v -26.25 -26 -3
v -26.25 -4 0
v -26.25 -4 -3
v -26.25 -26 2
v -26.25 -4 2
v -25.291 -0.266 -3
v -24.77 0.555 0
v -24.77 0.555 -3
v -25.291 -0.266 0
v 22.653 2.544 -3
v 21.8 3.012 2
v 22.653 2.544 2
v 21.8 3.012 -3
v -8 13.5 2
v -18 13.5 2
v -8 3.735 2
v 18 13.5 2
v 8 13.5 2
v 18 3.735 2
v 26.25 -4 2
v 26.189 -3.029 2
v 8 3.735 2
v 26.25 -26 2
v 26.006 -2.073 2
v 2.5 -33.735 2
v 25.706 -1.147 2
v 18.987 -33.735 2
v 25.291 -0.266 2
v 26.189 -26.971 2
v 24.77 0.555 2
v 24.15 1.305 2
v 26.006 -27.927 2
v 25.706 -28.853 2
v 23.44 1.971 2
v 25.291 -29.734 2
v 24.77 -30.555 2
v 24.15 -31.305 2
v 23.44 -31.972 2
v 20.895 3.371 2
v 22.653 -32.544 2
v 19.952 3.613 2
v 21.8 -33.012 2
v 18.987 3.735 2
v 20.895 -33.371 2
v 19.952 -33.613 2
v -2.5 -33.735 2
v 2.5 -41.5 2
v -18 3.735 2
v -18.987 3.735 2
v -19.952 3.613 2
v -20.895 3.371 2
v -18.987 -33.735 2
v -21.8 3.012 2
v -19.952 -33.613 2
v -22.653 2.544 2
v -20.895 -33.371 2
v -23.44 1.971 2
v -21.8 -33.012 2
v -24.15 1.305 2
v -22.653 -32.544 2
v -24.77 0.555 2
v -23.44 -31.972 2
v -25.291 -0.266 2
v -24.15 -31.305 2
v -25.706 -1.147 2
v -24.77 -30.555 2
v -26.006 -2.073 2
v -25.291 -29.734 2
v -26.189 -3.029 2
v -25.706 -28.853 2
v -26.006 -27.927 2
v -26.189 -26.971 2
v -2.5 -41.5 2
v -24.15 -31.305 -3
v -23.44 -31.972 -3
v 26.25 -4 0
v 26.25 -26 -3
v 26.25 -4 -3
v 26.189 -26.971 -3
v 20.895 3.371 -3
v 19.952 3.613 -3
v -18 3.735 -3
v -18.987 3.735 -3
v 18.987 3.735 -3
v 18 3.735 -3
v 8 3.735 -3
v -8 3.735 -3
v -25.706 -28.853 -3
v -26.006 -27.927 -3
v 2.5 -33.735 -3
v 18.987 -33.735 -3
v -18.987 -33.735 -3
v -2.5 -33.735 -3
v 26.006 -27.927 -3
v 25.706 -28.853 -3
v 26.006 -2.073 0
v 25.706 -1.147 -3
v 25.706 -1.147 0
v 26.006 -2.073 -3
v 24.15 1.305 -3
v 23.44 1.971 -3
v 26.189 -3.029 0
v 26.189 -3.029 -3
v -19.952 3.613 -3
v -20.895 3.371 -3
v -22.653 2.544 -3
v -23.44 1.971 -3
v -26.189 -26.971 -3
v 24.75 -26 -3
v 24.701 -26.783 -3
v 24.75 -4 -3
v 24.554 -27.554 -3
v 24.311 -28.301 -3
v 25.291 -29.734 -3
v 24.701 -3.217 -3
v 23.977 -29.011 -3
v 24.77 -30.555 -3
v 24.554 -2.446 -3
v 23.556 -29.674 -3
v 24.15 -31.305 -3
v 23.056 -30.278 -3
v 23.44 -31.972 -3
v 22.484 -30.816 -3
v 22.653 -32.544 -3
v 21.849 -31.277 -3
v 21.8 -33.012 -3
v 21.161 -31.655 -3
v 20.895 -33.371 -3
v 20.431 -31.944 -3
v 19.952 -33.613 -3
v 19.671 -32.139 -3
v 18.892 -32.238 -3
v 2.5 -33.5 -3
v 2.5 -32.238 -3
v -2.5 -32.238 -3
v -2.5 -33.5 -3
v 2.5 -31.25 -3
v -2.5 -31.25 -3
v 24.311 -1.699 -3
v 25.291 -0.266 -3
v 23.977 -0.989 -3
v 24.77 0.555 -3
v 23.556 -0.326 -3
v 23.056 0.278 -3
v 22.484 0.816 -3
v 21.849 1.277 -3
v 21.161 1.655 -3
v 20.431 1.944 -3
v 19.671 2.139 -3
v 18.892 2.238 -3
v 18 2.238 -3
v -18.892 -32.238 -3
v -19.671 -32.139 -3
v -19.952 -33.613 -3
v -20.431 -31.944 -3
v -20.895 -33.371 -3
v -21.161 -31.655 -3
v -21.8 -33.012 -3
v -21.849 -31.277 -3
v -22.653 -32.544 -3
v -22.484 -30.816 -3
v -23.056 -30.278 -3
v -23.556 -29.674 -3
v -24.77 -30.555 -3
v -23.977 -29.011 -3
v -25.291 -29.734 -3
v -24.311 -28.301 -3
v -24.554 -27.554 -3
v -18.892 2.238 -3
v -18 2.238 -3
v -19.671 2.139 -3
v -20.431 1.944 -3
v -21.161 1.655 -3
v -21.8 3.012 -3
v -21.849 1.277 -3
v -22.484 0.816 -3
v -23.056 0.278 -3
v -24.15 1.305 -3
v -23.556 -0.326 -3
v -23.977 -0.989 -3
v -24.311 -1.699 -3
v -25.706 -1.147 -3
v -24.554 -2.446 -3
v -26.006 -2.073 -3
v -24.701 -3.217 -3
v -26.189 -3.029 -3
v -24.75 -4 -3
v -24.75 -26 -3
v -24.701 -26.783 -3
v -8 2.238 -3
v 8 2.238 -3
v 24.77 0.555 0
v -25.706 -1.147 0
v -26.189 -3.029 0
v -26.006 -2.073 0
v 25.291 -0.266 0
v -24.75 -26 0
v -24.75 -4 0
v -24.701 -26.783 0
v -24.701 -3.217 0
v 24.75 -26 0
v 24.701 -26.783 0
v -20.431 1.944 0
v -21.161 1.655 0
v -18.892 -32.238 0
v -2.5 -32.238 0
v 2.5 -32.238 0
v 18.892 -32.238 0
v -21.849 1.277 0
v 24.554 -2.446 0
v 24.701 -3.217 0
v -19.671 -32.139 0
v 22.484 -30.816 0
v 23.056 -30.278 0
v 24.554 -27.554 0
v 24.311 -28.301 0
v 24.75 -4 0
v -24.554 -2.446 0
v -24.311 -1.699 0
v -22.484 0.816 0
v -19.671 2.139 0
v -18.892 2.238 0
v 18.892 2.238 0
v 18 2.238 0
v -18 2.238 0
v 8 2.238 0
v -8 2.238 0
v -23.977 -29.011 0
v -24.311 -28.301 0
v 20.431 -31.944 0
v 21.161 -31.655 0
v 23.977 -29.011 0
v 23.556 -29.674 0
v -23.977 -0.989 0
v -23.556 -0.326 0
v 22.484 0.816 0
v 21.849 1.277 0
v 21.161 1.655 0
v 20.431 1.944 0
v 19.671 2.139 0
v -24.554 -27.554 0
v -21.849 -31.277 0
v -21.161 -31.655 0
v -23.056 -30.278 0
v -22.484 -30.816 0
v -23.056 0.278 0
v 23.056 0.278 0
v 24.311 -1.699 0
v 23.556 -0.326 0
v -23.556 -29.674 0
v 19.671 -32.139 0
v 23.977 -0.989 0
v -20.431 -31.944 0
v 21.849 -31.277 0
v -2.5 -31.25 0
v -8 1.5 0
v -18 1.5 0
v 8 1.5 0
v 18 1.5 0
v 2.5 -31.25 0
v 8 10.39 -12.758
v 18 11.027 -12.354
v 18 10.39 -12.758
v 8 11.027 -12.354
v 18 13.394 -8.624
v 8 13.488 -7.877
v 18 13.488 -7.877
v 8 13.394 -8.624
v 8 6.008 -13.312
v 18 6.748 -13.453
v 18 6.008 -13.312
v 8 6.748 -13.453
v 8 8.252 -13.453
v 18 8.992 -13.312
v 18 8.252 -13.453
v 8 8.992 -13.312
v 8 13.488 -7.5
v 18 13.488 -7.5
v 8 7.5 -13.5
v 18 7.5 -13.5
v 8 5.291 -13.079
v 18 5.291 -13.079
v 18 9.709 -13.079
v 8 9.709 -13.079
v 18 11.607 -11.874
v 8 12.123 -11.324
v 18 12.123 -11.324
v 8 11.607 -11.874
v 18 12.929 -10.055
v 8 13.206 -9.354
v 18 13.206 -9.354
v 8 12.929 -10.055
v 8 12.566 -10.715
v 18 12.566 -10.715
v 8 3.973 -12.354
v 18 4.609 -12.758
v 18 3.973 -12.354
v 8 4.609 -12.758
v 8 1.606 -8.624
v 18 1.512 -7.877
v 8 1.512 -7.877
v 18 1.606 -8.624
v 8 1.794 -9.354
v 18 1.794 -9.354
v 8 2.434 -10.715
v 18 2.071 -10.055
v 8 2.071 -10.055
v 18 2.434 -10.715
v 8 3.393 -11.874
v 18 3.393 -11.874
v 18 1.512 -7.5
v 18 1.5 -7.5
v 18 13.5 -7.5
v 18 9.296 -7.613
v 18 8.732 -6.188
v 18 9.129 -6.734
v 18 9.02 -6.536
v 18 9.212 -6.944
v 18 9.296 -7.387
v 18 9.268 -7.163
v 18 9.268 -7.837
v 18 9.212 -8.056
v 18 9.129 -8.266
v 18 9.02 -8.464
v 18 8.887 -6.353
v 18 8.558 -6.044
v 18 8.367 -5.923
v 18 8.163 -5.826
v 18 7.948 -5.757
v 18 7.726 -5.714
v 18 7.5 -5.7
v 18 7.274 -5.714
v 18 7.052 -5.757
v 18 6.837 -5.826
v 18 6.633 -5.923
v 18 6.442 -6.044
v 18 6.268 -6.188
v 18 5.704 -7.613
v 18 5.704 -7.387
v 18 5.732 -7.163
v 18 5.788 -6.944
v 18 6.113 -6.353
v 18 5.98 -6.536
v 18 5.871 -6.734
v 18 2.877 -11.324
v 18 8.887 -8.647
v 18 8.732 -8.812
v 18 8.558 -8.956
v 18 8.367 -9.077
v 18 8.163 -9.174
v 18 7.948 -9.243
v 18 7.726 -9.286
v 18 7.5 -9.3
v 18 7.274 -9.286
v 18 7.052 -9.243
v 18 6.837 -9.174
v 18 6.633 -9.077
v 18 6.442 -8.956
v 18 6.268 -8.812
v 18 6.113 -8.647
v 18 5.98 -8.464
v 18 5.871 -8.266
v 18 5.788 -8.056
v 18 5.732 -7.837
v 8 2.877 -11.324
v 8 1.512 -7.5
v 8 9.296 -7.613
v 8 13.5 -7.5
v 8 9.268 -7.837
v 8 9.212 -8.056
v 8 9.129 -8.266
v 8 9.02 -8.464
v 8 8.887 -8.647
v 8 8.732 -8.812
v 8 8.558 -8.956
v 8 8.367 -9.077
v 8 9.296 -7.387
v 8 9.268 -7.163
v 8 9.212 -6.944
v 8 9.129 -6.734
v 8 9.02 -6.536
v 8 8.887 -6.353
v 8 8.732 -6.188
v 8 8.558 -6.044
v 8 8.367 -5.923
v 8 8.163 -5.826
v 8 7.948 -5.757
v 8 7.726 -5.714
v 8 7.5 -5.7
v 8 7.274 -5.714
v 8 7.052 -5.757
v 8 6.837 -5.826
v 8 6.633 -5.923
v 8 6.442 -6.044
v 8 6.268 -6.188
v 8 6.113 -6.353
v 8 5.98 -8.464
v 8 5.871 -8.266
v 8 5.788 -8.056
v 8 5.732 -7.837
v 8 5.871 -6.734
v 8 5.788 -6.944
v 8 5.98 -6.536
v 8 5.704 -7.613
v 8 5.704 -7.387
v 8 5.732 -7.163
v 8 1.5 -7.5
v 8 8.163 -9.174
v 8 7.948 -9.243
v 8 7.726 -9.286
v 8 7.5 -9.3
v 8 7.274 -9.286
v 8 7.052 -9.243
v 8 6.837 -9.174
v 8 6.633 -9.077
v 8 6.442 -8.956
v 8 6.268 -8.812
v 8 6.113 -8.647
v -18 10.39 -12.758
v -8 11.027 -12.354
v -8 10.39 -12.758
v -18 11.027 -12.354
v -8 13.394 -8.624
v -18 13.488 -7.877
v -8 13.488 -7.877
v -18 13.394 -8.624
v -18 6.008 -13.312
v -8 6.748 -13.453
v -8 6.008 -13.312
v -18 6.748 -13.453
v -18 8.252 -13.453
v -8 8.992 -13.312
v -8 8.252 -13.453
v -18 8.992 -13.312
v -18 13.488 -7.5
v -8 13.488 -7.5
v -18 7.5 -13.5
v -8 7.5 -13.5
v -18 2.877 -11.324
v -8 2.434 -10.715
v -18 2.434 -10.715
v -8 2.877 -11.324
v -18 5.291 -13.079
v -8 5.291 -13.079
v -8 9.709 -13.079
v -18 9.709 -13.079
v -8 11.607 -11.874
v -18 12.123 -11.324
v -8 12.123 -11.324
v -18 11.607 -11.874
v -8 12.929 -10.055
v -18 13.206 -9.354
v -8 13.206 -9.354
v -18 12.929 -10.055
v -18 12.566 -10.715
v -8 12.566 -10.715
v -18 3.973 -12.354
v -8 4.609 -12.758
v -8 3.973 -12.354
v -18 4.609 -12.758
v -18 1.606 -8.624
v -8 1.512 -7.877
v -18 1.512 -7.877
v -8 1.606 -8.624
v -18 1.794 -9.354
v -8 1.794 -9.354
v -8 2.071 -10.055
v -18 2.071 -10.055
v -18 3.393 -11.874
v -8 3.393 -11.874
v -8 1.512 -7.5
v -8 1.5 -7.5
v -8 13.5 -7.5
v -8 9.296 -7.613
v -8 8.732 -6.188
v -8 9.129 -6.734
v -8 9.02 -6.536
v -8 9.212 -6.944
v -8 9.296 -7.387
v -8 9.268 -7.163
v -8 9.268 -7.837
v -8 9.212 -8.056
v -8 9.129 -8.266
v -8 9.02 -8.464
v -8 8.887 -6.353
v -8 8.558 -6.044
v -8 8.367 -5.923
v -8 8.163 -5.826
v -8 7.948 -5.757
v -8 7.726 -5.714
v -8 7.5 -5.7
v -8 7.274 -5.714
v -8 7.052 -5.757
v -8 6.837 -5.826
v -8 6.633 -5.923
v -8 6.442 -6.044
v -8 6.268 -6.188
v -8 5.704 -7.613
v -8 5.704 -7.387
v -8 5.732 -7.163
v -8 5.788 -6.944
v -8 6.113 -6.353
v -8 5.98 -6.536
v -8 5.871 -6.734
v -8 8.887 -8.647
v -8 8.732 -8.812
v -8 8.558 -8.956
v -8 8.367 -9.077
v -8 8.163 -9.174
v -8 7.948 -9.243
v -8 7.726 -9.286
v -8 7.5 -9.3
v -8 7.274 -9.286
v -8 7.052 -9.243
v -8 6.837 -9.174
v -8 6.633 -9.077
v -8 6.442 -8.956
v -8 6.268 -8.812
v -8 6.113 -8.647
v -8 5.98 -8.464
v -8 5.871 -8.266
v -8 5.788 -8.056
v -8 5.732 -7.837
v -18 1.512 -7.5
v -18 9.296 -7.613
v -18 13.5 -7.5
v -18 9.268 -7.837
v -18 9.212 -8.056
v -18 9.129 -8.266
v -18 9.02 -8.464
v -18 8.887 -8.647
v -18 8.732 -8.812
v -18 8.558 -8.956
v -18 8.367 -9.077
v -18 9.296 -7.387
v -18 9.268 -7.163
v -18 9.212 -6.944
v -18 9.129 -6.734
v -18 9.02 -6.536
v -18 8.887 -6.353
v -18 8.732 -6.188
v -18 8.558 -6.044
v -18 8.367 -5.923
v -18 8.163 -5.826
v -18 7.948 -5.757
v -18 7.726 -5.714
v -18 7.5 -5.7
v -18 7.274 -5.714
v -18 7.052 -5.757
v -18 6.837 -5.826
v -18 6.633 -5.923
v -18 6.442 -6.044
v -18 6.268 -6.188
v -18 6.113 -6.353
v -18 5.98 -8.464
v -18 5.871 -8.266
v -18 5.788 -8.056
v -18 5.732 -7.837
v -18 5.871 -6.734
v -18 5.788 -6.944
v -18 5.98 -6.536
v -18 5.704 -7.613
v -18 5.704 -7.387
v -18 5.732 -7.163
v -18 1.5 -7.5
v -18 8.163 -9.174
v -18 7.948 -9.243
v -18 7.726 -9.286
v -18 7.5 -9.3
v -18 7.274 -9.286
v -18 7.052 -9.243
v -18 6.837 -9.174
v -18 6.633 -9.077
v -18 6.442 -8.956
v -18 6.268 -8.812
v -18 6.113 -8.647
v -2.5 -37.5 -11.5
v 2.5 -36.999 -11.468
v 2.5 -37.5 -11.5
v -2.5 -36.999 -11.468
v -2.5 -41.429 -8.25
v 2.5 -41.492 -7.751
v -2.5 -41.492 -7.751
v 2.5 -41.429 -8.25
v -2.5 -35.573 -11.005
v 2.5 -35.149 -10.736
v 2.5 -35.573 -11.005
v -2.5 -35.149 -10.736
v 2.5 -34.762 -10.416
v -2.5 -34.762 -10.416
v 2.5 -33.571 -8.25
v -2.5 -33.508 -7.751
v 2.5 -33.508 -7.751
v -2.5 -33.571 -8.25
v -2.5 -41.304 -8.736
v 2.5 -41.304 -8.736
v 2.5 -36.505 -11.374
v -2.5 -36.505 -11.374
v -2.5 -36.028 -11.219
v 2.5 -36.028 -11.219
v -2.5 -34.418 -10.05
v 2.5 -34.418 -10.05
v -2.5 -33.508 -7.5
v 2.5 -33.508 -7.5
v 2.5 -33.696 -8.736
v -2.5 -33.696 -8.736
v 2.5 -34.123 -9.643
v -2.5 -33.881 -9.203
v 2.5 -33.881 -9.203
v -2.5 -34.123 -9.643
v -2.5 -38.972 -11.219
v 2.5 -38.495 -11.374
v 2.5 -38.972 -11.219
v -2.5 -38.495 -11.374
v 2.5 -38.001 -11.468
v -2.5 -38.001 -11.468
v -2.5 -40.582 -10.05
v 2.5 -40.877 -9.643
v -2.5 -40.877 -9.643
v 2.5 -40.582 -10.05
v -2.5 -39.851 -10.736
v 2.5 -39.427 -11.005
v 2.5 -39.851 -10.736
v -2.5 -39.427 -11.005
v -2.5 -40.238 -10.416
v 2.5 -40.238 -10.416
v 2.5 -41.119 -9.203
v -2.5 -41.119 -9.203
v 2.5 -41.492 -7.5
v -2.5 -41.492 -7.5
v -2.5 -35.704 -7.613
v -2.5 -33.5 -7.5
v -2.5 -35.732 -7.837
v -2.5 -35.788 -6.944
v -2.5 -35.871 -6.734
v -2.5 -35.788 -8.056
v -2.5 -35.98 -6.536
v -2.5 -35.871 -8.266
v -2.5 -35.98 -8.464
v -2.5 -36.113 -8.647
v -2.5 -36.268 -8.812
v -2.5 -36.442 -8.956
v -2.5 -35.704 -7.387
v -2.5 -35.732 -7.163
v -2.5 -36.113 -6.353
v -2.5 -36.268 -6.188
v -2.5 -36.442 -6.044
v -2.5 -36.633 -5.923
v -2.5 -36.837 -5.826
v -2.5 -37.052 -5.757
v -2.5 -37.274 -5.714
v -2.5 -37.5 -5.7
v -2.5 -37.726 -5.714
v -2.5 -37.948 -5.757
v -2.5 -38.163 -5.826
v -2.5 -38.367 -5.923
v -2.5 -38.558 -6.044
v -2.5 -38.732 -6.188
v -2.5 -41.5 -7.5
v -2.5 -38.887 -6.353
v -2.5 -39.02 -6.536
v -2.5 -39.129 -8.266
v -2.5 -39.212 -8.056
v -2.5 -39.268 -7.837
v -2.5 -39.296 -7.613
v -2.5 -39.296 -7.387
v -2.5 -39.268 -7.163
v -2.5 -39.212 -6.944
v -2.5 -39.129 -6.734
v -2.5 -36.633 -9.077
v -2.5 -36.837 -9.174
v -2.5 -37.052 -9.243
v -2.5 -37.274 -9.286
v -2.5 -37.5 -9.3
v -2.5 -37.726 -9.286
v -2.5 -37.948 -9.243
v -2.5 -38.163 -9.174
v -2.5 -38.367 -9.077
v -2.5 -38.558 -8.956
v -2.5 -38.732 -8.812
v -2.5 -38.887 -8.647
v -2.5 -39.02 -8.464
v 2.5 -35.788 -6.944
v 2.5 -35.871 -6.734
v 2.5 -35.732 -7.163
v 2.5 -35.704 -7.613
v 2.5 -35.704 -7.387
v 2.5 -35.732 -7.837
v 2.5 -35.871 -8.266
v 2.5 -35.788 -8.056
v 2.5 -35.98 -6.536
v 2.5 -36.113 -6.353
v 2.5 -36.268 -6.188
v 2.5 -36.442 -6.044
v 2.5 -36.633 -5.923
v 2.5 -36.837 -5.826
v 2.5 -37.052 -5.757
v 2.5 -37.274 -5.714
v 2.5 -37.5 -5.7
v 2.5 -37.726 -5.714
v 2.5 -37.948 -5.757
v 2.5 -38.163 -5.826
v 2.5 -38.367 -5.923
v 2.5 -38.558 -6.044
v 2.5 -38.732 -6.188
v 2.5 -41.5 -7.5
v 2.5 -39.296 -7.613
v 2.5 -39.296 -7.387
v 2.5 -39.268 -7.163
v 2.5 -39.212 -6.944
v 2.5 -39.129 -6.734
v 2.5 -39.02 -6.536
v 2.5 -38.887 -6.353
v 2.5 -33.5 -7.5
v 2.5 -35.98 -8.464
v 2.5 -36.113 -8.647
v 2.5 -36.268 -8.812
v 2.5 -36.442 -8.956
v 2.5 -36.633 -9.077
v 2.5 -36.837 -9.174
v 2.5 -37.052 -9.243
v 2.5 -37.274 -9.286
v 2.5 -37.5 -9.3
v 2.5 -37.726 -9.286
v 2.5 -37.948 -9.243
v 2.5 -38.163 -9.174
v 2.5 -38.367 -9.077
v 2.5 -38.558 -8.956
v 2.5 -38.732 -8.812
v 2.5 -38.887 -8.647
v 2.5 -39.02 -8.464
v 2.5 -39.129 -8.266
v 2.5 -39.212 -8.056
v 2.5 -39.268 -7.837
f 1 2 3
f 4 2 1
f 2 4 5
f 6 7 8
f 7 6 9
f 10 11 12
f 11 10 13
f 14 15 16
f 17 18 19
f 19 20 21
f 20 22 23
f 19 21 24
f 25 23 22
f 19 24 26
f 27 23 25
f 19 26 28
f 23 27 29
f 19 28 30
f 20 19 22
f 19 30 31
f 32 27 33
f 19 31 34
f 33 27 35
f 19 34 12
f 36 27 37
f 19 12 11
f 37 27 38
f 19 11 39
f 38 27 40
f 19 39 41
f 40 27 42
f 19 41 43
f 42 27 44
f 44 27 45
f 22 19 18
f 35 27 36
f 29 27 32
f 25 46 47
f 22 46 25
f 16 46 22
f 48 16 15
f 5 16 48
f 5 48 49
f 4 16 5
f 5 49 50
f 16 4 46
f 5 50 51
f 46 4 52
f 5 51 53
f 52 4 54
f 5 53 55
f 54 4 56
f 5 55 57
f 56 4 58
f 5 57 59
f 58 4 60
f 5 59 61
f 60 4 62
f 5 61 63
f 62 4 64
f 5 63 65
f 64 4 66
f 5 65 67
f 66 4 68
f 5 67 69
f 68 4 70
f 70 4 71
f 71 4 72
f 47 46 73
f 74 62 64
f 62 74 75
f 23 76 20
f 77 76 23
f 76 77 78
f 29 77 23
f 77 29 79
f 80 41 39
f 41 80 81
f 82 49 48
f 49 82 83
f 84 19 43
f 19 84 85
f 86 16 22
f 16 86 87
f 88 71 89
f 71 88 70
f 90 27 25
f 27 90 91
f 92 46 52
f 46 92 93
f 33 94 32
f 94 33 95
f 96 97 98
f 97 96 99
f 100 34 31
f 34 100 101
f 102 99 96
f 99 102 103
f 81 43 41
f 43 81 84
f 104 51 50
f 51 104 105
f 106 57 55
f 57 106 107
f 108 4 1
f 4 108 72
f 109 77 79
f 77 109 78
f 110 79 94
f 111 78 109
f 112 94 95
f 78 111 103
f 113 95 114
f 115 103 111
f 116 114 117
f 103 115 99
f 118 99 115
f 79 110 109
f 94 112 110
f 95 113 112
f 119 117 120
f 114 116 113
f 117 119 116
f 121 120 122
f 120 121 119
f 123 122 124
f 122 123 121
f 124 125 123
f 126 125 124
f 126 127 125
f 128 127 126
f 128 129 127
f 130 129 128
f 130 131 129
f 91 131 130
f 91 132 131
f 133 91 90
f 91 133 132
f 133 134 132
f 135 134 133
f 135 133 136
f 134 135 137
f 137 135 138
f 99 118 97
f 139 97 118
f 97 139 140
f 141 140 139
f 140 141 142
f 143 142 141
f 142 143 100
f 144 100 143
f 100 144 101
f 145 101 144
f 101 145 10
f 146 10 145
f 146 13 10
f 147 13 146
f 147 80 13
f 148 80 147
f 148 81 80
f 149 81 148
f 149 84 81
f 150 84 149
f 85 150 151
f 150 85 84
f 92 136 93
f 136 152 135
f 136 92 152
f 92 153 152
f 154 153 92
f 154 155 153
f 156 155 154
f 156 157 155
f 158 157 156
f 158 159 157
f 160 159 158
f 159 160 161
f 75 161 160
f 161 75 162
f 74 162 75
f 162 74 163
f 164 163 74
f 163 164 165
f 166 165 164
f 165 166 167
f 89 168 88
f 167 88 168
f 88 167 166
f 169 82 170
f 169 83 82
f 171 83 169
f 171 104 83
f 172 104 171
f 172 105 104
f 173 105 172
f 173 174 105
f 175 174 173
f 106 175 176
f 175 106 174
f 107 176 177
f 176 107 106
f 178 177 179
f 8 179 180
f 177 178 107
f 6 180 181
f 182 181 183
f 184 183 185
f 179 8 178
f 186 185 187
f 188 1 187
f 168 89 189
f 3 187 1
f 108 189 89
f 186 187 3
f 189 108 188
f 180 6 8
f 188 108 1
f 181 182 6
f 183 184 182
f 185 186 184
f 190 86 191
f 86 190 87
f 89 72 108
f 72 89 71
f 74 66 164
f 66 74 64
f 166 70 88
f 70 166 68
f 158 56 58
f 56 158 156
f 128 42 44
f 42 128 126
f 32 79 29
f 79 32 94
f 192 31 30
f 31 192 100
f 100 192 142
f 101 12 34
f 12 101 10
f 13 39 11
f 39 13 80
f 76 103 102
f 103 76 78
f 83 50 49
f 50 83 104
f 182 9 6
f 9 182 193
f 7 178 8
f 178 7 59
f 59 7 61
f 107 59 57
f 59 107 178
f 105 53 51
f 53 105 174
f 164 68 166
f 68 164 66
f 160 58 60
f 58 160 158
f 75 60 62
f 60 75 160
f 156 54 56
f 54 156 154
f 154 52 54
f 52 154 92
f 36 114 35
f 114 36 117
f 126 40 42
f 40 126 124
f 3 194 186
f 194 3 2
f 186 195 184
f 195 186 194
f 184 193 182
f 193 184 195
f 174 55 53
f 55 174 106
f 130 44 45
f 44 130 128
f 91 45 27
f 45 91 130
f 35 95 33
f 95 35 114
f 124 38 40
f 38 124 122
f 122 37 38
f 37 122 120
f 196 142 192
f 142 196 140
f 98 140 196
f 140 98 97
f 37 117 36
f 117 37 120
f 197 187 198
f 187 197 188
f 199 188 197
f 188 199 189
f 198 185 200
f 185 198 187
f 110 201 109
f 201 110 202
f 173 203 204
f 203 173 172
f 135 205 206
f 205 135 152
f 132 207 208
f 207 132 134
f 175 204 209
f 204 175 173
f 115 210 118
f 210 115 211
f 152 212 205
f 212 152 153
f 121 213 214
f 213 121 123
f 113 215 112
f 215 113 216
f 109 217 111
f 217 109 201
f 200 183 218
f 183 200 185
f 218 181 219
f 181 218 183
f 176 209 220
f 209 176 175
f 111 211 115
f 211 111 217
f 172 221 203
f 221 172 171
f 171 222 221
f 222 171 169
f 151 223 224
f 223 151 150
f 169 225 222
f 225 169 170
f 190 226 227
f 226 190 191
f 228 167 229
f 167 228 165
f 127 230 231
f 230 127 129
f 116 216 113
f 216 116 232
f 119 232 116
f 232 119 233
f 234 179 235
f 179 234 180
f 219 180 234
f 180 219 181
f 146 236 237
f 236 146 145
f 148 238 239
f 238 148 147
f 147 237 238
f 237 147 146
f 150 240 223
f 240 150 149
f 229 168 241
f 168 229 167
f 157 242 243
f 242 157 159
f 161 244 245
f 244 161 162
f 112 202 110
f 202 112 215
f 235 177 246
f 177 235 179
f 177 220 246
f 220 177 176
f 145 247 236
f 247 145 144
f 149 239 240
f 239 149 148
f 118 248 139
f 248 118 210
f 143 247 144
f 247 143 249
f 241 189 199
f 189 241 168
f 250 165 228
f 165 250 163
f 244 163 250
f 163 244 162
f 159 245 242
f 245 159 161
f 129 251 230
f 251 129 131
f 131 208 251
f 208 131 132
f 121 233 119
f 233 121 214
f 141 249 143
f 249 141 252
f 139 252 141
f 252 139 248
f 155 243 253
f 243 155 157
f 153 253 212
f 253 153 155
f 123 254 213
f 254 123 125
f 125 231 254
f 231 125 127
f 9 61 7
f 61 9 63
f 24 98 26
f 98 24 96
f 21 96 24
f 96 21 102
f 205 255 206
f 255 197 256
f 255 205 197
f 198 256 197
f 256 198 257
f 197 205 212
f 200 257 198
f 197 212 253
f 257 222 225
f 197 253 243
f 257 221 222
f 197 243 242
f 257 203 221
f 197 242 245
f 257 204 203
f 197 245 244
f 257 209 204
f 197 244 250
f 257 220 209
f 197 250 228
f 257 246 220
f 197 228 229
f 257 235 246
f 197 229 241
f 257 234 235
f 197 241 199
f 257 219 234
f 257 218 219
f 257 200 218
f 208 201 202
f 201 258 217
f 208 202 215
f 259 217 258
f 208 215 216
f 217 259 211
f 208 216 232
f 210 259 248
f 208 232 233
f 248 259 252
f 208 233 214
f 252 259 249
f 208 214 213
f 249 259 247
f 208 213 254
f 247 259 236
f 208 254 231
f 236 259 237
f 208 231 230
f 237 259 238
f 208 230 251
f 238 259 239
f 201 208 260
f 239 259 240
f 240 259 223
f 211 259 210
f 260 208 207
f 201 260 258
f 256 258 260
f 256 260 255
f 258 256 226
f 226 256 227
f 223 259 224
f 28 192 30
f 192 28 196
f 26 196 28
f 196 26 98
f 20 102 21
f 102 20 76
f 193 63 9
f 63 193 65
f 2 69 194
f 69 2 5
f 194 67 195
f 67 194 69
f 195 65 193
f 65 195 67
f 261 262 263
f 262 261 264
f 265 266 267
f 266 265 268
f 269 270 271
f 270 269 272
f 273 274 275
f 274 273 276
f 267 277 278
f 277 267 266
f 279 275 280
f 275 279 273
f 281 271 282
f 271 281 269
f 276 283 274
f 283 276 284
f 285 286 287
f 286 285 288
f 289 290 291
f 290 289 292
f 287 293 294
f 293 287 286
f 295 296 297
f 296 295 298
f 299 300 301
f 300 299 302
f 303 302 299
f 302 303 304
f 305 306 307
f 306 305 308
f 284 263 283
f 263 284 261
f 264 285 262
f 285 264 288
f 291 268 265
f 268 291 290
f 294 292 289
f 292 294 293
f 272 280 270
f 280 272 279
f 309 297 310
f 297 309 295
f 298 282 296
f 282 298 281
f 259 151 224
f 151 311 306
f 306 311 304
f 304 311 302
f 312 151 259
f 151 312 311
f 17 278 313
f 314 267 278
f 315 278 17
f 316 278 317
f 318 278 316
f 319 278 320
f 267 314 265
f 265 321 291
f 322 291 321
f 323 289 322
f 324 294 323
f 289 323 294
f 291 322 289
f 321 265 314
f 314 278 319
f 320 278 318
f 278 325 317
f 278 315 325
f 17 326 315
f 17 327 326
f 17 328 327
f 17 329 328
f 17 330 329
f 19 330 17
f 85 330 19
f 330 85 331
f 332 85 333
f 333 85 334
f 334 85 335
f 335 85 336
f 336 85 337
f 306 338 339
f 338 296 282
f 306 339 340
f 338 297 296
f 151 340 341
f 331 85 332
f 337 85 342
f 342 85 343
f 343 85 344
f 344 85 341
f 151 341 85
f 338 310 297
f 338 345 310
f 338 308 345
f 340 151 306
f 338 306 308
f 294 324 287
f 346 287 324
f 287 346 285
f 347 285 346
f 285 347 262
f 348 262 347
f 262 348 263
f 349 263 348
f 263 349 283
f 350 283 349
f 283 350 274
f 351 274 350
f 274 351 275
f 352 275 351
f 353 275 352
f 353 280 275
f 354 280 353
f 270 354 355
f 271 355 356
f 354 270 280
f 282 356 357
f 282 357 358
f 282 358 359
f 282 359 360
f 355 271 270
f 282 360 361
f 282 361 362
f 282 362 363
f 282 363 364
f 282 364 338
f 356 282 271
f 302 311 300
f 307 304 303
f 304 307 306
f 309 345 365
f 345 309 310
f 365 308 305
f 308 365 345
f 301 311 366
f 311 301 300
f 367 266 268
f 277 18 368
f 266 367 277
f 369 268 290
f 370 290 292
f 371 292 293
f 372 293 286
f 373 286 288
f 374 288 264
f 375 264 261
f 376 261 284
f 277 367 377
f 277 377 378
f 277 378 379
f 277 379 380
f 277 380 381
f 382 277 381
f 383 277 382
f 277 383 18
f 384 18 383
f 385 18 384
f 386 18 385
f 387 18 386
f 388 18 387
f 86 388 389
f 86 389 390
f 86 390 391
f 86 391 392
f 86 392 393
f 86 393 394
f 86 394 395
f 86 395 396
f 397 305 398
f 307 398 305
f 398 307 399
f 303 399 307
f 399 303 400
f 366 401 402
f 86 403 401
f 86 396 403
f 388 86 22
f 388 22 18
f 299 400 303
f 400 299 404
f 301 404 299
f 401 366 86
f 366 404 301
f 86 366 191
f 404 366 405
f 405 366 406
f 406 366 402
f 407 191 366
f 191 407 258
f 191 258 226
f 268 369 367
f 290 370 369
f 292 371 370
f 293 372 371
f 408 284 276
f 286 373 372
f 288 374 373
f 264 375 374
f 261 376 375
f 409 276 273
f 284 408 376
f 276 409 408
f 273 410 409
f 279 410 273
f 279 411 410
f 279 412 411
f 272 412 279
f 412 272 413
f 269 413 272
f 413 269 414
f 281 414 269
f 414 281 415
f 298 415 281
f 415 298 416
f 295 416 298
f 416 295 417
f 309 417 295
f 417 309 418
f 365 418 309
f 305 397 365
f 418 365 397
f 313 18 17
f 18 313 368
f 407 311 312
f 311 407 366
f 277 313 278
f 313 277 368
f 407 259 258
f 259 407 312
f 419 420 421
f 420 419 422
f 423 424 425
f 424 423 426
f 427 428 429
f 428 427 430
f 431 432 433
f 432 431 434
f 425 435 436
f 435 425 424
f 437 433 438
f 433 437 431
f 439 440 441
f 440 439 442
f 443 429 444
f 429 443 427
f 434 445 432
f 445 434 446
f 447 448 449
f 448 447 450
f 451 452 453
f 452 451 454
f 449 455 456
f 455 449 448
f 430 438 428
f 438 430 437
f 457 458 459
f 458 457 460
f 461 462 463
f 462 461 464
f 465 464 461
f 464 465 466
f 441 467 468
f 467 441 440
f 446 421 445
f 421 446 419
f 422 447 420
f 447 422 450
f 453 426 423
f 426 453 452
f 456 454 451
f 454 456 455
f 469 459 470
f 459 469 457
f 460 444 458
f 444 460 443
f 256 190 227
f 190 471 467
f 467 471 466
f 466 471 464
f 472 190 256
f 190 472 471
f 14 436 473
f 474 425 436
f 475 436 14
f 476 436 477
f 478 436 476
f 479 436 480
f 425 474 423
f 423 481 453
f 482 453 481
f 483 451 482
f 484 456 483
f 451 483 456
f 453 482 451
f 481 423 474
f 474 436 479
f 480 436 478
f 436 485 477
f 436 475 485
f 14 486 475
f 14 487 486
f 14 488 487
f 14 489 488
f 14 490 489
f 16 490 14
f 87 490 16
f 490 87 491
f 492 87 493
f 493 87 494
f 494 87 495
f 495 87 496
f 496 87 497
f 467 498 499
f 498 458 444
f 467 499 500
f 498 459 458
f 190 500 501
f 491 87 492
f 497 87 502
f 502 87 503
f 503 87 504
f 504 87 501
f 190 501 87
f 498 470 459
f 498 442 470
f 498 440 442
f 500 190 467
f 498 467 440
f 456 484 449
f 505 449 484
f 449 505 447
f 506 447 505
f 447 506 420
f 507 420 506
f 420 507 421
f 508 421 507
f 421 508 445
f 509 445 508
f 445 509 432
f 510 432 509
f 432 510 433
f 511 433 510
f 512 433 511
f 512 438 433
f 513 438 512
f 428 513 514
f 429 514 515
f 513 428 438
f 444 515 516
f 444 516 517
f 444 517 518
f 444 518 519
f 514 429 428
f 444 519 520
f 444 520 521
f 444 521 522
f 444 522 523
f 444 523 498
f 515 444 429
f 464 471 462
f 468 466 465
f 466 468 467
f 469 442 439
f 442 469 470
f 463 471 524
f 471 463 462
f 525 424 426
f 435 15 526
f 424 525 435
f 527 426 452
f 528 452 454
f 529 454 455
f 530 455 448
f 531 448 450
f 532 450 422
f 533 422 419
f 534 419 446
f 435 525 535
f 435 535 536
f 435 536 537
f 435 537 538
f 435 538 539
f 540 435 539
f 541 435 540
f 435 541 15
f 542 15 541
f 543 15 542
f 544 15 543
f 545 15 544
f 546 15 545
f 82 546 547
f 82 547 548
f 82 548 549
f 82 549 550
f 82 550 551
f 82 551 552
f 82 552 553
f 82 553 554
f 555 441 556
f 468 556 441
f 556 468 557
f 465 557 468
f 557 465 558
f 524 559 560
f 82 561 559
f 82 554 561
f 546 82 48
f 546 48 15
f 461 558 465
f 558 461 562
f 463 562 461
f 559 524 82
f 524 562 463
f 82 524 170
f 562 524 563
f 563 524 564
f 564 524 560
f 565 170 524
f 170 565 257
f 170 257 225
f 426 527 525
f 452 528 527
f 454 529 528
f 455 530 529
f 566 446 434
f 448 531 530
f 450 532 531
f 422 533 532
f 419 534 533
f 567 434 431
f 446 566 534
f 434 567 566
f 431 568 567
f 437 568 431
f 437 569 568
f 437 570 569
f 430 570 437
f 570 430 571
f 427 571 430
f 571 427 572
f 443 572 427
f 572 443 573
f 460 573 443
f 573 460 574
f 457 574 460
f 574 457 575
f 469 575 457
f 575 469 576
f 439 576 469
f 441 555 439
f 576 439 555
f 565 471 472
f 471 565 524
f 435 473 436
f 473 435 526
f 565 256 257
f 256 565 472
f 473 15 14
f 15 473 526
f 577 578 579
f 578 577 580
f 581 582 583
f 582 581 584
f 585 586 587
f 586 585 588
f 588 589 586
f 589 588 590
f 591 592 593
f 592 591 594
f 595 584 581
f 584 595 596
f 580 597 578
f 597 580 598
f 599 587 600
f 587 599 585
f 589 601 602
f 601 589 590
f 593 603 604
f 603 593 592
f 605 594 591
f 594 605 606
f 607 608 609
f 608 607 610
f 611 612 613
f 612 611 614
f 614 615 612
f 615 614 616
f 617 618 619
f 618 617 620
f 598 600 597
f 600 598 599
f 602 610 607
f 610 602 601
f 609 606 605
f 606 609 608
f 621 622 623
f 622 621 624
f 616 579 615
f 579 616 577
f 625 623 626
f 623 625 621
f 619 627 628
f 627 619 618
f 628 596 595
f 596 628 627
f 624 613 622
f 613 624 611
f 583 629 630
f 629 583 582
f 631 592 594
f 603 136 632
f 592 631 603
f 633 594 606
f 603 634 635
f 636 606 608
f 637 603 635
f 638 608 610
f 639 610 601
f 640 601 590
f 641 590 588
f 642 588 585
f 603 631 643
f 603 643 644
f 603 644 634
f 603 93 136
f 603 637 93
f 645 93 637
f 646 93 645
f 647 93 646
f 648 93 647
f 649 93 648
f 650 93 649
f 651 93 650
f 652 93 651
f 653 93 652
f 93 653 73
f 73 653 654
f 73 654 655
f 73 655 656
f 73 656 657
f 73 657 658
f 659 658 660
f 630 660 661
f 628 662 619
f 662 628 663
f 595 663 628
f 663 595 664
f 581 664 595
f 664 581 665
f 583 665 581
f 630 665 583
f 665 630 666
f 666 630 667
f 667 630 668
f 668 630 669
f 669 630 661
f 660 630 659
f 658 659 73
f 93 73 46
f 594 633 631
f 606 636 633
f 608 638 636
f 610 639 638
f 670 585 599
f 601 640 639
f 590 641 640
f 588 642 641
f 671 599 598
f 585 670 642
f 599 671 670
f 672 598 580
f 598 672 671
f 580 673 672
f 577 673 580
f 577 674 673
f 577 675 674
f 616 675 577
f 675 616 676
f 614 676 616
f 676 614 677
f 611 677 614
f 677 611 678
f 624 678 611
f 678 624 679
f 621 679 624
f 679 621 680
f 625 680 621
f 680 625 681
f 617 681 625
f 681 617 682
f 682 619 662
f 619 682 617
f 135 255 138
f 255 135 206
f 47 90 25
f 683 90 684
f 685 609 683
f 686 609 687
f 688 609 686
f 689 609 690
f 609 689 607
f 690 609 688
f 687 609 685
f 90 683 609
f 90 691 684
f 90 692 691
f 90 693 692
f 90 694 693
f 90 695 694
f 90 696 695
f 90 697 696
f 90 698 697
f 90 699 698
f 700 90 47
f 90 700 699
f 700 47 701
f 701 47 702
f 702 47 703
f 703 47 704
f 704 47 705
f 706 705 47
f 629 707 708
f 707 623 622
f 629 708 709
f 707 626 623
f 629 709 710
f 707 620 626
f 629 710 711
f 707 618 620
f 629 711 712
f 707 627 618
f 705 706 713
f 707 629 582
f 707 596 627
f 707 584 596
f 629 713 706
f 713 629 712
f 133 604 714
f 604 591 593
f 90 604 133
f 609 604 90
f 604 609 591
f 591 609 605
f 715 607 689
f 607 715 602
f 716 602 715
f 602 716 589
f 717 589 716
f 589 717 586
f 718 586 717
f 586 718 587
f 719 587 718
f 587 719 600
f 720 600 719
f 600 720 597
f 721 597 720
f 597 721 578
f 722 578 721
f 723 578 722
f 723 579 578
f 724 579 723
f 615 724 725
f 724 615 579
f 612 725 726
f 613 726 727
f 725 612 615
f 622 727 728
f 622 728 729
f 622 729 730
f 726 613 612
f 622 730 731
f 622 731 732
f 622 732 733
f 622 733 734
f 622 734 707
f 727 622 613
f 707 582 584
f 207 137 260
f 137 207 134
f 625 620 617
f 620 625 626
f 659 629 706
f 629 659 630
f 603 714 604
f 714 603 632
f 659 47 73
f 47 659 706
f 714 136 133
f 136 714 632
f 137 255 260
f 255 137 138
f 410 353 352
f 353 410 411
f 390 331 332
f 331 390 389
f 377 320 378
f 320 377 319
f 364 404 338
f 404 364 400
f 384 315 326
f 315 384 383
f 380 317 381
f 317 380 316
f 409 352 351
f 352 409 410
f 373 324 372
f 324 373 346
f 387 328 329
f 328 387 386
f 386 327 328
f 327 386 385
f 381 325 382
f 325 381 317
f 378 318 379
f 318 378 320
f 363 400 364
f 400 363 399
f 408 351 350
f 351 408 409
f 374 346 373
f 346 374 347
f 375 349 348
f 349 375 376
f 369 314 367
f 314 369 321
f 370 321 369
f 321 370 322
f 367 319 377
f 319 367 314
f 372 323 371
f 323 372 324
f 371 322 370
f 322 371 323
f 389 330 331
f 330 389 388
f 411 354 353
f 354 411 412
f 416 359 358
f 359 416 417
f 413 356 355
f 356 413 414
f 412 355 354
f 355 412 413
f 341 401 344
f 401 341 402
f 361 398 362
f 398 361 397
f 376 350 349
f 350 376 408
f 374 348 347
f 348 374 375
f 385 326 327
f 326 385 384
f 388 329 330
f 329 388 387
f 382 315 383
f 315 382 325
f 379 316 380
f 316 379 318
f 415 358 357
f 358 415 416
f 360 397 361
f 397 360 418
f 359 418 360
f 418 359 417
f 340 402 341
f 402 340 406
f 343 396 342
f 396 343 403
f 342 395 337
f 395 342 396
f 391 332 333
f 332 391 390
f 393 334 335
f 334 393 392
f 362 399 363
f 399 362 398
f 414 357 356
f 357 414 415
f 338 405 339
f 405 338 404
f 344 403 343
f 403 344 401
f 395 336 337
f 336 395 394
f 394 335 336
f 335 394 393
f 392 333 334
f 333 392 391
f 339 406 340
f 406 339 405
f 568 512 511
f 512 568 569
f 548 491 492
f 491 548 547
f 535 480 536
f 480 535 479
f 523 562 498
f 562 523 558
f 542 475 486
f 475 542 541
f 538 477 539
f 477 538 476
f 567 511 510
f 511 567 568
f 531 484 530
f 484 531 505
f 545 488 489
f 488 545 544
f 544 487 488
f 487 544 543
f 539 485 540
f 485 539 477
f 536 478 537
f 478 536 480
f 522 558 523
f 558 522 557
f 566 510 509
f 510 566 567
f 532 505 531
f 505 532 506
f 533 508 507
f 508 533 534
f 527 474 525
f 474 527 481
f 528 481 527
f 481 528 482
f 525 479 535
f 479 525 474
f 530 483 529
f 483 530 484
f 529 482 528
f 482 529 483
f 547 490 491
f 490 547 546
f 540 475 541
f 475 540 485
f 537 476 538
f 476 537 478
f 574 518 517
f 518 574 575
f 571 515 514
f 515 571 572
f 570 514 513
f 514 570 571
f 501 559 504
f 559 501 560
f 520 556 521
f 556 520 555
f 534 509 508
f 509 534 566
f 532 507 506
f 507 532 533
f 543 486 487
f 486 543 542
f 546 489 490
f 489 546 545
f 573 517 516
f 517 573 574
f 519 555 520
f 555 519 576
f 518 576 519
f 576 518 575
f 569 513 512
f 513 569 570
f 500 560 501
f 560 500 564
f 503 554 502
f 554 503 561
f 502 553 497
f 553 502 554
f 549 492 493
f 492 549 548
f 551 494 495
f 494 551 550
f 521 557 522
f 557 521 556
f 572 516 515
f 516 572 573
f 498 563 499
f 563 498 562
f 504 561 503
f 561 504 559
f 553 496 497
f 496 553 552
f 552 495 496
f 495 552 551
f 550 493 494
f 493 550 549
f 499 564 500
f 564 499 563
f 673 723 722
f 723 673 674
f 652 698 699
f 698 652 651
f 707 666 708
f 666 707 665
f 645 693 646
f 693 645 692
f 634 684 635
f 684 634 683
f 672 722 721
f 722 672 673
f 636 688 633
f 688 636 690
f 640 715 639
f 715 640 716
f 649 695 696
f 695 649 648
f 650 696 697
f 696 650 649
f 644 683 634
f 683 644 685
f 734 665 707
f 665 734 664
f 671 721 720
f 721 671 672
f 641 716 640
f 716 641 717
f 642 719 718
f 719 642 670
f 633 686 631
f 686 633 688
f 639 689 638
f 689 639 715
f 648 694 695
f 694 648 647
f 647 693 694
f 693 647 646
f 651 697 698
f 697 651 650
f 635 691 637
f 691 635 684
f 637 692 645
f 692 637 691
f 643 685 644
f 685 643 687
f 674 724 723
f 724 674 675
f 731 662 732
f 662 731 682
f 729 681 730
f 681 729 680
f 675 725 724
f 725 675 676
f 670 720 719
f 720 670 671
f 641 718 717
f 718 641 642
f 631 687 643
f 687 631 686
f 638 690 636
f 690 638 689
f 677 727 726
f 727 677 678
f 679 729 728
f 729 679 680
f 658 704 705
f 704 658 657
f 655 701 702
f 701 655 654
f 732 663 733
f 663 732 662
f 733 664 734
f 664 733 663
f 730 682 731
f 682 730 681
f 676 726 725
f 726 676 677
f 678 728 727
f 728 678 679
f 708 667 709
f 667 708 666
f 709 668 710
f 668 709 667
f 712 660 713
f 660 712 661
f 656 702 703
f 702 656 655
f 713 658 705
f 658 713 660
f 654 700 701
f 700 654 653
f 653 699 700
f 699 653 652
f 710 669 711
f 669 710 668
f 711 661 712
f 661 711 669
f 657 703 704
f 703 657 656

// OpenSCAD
$fn = 50;


difference() {
	union() {
		translate(v = [0, -15.0000000000, -3]) {
			rotate(a = [0, 0, 0]) {
				difference() {
					union() {
						hull() {
							translate(v = [-18.5000000000, 11.0000000000, 0]) {
								cylinder(h = 5, r = 7.7500000000);
							}
							translate(v = [18.5000000000, 11.0000000000, 0]) {
								cylinder(h = 5, r = 7.7500000000);
							}
							translate(v = [-18.5000000000, -11.0000000000, 0]) {
								cylinder(h = 5, r = 7.7500000000);
							}
							translate(v = [18.5000000000, -11.0000000000, 0]) {
								cylinder(h = 5, r = 7.7500000000);
							}
						}
					}
					union() {
						hull() {
							translate(v = [-18.5000000000, 11.0000000000, 0]) {
								cylinder(h = 5, r = 6.2500000000);
							}
							translate(v = [18.5000000000, 11.0000000000, 0]) {
								cylinder(h = 5, r = 6.2500000000);
							}
							translate(v = [-18.5000000000, -11.0000000000, 0]) {
								cylinder(h = 5, r = 6.2500000000);
							}
							translate(v = [18.5000000000, -11.0000000000, 0]) {
								cylinder(h = 5, r = 6.2500000000);
							}
						}
					}
				}
			}
		}
		translate(v = [0, -15.0000000000, 0]) {
			hull() {
				translate(v = [-18.5000000000, 11.0000000000, 0]) {
					cylinder(h = 2, r = 7.7500000000);
				}
				translate(v = [18.5000000000, 11.0000000000, 0]) {
					cylinder(h = 2, r = 7.7500000000);
				}
				translate(v = [-18.5000000000, -11.0000000000, 0]) {
					cylinder(h = 2, r = 7.7500000000);
				}
				translate(v = [18.5000000000, -11.0000000000, 0]) {
					cylinder(h = 2, r = 7.7500000000);
				}
			}
		}
		translate(v = [8.0000000000, 7.5000000000, -7.5000000000]) {
			rotate(a = [0, 90, 0]) {
				cylinder(h = 10, r = 6.0000000000);
			}
		}
		translate(v = [8.0000000000, 1.5000000000, -7.5000000000]) {
			cube(size = [10, 12, 7.5000000000]);
		}
		translate(v = [8.0000000000, -15.0000000000, 0.0000000000]) {
			cube(size = [10, 28.5000000000, 2]);
		}
		translate(v = [-18.0000000000, 7.5000000000, -7.5000000000]) {
			rotate(a = [0, 90, 0]) {
				cylinder(h = 10, r = 6.0000000000);
			}
		}
		translate(v = [-18.0000000000, 1.5000000000, -7.5000000000]) {
			cube(size = [10, 12, 7.5000000000]);
		}
		translate(v = [-18.0000000000, -15.0000000000, 0.0000000000]) {
			cube(size = [10, 28.5000000000, 2]);
		}
		translate(v = [-2.5000000000, -37.5000000000, -7.5000000000]) {
			rotate(a = [0, 90, 0]) {
				cylinder(h = 5, r = 4.0000000000);
			}
		}
		translate(v = [-2.5000000000, -41.5000000000, -7.5000000000]) {
			cube(size = [5, 8, 7.5000000000]);
		}
		translate(v = [-2.5000000000, -41.5000000000, -3.0000000000]) {
			cube(size = [5, 10.2500000000, 5]);
		}
	}
	union() {
		translate(v = [8.0000000000, 7.5000000000, -7.5000000000]) {
			rotate(a = [0, 90, 0]) {
				cylinder(h = 10, r = 1.8000000000);
			}
		}
		translate(v = [-18.0000000000, 7.5000000000, -7.5000000000]) {
			rotate(a = [0, 90, 0]) {
				cylinder(h = 10, r = 1.8000000000);
			}
		}
		translate(v = [-5.0000000000, -37.5000000000, -7.5000000000]) {
			rotate(a = [0, 90, 0]) {
				cylinder(h = 10, r = 1.8000000000);
			}
		}
	}
}
